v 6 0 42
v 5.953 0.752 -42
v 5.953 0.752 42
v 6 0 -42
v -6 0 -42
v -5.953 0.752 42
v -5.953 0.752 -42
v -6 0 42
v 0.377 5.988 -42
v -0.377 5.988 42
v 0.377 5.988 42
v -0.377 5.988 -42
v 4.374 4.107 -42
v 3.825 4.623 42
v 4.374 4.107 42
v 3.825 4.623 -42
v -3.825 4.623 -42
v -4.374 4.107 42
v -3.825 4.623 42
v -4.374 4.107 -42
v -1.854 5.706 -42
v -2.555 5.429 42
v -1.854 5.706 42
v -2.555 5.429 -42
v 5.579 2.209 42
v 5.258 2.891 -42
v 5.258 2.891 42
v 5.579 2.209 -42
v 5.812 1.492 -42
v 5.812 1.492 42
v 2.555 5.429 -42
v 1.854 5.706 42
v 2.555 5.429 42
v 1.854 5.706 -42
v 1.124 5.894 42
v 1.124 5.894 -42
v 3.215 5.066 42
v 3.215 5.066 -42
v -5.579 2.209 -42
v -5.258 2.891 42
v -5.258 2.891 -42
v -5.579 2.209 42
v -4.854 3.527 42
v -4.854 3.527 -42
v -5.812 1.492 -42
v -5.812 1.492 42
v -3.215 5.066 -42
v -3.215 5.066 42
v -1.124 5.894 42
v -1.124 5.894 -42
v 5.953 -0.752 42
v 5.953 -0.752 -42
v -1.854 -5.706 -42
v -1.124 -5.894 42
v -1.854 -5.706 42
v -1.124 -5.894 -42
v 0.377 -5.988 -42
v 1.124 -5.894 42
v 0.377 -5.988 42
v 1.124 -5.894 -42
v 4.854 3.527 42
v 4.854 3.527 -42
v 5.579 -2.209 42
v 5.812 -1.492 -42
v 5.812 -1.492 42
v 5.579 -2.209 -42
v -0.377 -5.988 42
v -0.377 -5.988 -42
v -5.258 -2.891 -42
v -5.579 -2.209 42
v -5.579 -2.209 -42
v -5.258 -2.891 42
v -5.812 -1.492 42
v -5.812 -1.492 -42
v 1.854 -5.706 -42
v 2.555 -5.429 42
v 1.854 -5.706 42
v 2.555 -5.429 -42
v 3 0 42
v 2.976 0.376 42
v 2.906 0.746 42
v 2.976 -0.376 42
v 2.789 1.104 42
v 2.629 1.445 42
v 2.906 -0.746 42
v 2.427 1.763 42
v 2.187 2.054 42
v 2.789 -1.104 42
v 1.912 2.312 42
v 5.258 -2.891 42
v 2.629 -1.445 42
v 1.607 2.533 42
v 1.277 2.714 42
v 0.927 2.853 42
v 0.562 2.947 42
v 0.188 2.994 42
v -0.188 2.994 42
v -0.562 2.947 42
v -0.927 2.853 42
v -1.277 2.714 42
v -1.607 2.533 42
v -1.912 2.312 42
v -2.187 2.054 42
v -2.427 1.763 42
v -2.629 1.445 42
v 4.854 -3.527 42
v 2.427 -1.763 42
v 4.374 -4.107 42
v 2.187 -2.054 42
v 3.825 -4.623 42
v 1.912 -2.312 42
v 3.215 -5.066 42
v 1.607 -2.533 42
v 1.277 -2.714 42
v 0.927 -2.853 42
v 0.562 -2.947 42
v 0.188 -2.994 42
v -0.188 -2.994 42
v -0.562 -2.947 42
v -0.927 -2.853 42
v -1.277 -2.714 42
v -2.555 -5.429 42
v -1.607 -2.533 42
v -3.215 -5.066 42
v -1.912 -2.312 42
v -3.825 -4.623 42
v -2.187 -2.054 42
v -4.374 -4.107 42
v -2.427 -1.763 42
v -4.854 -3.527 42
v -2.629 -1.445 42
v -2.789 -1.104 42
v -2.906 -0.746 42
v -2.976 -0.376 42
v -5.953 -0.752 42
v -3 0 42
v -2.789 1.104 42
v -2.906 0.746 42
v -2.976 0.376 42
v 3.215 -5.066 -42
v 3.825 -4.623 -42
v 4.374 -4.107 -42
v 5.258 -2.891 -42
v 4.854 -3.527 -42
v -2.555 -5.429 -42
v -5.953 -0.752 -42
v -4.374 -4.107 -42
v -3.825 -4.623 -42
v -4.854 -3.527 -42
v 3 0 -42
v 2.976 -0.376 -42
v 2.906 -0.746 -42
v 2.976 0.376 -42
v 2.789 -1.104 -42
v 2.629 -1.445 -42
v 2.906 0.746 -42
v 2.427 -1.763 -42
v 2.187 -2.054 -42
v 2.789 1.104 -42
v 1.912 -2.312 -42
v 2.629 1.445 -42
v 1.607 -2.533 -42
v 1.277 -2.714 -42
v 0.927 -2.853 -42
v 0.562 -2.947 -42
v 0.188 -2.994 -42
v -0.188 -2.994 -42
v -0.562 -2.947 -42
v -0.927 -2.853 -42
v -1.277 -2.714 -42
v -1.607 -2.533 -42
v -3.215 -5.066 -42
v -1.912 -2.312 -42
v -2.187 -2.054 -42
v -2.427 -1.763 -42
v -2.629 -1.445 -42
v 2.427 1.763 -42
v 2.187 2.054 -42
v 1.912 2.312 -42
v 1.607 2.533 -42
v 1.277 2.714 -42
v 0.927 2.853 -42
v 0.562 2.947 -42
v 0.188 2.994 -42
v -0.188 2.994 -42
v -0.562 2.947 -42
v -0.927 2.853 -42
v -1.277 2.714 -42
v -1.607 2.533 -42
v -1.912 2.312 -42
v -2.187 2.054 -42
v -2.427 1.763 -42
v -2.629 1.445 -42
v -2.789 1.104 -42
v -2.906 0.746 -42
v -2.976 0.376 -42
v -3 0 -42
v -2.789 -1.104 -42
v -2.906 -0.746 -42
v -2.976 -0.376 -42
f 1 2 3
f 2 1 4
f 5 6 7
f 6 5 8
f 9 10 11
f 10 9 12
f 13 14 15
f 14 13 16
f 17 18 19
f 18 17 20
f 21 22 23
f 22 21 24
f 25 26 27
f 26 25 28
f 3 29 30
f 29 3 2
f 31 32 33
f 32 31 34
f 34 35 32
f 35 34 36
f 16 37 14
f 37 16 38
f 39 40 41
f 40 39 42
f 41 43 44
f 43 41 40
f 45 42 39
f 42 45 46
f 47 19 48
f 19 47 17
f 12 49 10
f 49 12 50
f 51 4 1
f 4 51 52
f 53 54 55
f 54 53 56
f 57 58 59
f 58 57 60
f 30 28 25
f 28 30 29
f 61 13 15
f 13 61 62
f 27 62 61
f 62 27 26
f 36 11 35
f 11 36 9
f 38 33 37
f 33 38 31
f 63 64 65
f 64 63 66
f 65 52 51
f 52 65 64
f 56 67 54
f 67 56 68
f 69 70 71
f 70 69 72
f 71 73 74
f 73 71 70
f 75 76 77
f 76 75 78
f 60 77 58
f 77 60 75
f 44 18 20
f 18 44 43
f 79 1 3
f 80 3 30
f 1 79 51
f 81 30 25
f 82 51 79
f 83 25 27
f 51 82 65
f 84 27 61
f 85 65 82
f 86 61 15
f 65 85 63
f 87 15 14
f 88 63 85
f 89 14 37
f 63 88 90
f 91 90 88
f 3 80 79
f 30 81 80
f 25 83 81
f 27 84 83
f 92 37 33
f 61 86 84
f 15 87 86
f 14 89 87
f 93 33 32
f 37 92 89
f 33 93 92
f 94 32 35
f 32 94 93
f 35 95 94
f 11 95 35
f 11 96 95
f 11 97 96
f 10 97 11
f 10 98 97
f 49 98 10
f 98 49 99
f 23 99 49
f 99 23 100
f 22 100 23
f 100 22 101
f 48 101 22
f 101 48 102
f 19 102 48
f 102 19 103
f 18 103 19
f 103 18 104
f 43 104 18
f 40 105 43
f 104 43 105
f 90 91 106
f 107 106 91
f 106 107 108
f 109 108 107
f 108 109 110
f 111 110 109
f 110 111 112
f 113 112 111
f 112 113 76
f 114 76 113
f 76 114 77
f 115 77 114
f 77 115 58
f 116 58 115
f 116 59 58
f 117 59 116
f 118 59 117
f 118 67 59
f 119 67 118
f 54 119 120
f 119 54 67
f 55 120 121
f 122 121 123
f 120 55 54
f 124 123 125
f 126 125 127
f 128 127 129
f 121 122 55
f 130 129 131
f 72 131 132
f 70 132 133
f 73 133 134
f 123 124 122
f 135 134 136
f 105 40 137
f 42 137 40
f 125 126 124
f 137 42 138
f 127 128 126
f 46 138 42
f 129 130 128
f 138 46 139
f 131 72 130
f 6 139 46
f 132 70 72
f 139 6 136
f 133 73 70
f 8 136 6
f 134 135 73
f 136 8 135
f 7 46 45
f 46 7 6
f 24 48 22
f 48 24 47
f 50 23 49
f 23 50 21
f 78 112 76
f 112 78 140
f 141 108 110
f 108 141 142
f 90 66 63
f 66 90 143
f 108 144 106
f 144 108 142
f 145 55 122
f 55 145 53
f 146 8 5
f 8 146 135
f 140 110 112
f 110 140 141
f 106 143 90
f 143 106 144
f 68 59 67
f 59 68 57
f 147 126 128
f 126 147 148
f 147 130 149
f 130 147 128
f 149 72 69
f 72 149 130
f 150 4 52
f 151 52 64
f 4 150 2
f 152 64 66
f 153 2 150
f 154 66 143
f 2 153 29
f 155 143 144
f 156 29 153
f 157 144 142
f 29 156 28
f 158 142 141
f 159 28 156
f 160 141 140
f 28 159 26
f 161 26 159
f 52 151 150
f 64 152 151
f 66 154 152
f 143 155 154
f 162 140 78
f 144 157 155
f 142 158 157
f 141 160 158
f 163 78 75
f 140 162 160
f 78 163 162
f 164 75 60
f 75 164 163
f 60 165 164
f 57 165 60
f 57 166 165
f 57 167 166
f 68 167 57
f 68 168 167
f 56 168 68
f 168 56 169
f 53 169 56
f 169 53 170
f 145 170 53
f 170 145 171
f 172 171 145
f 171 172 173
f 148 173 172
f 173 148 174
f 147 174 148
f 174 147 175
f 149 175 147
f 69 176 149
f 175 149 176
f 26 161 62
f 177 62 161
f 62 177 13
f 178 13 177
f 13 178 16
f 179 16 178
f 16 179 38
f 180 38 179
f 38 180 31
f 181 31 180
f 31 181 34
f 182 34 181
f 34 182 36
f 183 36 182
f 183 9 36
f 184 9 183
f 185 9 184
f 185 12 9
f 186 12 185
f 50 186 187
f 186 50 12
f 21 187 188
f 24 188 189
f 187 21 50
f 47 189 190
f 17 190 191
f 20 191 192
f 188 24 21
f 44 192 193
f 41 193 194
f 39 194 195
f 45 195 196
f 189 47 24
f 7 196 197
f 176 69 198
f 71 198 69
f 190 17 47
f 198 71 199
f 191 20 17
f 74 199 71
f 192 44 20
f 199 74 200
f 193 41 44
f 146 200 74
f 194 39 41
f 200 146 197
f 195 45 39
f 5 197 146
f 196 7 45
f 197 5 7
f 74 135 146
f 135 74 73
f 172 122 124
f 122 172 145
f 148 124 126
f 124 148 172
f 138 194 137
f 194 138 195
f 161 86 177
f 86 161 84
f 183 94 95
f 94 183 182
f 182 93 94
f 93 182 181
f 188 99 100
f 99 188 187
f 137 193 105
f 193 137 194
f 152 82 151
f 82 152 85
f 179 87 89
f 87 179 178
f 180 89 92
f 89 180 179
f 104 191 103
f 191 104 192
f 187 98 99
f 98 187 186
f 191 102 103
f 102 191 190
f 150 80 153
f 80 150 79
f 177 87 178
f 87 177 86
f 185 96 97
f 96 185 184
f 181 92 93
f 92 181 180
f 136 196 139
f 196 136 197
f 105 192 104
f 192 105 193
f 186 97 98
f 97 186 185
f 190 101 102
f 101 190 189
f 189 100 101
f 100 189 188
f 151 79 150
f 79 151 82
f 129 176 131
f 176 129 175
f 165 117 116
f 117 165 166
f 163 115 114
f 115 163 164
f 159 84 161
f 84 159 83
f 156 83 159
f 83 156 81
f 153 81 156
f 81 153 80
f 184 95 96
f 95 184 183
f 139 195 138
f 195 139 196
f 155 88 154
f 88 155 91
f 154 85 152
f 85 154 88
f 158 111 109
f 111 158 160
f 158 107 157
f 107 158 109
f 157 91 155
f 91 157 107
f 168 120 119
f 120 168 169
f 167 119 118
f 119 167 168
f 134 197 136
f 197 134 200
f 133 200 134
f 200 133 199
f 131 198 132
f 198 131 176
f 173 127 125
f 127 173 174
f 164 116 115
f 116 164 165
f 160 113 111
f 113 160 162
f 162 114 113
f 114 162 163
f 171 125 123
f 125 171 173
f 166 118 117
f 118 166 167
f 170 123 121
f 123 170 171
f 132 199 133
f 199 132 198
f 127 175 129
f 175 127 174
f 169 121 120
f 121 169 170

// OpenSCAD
$fn = 50;


difference() {
	union() {
		translate(v = [0, 0, -42.0000000000]) {
			cylinder(h = 84, r = 6.0000000000);
		}
	}
	union() {
		translate(v = [0, 0, -100.0000000000]) {
			cylinder(h = 200, r = 3.0000000000);
		}
	}
}
